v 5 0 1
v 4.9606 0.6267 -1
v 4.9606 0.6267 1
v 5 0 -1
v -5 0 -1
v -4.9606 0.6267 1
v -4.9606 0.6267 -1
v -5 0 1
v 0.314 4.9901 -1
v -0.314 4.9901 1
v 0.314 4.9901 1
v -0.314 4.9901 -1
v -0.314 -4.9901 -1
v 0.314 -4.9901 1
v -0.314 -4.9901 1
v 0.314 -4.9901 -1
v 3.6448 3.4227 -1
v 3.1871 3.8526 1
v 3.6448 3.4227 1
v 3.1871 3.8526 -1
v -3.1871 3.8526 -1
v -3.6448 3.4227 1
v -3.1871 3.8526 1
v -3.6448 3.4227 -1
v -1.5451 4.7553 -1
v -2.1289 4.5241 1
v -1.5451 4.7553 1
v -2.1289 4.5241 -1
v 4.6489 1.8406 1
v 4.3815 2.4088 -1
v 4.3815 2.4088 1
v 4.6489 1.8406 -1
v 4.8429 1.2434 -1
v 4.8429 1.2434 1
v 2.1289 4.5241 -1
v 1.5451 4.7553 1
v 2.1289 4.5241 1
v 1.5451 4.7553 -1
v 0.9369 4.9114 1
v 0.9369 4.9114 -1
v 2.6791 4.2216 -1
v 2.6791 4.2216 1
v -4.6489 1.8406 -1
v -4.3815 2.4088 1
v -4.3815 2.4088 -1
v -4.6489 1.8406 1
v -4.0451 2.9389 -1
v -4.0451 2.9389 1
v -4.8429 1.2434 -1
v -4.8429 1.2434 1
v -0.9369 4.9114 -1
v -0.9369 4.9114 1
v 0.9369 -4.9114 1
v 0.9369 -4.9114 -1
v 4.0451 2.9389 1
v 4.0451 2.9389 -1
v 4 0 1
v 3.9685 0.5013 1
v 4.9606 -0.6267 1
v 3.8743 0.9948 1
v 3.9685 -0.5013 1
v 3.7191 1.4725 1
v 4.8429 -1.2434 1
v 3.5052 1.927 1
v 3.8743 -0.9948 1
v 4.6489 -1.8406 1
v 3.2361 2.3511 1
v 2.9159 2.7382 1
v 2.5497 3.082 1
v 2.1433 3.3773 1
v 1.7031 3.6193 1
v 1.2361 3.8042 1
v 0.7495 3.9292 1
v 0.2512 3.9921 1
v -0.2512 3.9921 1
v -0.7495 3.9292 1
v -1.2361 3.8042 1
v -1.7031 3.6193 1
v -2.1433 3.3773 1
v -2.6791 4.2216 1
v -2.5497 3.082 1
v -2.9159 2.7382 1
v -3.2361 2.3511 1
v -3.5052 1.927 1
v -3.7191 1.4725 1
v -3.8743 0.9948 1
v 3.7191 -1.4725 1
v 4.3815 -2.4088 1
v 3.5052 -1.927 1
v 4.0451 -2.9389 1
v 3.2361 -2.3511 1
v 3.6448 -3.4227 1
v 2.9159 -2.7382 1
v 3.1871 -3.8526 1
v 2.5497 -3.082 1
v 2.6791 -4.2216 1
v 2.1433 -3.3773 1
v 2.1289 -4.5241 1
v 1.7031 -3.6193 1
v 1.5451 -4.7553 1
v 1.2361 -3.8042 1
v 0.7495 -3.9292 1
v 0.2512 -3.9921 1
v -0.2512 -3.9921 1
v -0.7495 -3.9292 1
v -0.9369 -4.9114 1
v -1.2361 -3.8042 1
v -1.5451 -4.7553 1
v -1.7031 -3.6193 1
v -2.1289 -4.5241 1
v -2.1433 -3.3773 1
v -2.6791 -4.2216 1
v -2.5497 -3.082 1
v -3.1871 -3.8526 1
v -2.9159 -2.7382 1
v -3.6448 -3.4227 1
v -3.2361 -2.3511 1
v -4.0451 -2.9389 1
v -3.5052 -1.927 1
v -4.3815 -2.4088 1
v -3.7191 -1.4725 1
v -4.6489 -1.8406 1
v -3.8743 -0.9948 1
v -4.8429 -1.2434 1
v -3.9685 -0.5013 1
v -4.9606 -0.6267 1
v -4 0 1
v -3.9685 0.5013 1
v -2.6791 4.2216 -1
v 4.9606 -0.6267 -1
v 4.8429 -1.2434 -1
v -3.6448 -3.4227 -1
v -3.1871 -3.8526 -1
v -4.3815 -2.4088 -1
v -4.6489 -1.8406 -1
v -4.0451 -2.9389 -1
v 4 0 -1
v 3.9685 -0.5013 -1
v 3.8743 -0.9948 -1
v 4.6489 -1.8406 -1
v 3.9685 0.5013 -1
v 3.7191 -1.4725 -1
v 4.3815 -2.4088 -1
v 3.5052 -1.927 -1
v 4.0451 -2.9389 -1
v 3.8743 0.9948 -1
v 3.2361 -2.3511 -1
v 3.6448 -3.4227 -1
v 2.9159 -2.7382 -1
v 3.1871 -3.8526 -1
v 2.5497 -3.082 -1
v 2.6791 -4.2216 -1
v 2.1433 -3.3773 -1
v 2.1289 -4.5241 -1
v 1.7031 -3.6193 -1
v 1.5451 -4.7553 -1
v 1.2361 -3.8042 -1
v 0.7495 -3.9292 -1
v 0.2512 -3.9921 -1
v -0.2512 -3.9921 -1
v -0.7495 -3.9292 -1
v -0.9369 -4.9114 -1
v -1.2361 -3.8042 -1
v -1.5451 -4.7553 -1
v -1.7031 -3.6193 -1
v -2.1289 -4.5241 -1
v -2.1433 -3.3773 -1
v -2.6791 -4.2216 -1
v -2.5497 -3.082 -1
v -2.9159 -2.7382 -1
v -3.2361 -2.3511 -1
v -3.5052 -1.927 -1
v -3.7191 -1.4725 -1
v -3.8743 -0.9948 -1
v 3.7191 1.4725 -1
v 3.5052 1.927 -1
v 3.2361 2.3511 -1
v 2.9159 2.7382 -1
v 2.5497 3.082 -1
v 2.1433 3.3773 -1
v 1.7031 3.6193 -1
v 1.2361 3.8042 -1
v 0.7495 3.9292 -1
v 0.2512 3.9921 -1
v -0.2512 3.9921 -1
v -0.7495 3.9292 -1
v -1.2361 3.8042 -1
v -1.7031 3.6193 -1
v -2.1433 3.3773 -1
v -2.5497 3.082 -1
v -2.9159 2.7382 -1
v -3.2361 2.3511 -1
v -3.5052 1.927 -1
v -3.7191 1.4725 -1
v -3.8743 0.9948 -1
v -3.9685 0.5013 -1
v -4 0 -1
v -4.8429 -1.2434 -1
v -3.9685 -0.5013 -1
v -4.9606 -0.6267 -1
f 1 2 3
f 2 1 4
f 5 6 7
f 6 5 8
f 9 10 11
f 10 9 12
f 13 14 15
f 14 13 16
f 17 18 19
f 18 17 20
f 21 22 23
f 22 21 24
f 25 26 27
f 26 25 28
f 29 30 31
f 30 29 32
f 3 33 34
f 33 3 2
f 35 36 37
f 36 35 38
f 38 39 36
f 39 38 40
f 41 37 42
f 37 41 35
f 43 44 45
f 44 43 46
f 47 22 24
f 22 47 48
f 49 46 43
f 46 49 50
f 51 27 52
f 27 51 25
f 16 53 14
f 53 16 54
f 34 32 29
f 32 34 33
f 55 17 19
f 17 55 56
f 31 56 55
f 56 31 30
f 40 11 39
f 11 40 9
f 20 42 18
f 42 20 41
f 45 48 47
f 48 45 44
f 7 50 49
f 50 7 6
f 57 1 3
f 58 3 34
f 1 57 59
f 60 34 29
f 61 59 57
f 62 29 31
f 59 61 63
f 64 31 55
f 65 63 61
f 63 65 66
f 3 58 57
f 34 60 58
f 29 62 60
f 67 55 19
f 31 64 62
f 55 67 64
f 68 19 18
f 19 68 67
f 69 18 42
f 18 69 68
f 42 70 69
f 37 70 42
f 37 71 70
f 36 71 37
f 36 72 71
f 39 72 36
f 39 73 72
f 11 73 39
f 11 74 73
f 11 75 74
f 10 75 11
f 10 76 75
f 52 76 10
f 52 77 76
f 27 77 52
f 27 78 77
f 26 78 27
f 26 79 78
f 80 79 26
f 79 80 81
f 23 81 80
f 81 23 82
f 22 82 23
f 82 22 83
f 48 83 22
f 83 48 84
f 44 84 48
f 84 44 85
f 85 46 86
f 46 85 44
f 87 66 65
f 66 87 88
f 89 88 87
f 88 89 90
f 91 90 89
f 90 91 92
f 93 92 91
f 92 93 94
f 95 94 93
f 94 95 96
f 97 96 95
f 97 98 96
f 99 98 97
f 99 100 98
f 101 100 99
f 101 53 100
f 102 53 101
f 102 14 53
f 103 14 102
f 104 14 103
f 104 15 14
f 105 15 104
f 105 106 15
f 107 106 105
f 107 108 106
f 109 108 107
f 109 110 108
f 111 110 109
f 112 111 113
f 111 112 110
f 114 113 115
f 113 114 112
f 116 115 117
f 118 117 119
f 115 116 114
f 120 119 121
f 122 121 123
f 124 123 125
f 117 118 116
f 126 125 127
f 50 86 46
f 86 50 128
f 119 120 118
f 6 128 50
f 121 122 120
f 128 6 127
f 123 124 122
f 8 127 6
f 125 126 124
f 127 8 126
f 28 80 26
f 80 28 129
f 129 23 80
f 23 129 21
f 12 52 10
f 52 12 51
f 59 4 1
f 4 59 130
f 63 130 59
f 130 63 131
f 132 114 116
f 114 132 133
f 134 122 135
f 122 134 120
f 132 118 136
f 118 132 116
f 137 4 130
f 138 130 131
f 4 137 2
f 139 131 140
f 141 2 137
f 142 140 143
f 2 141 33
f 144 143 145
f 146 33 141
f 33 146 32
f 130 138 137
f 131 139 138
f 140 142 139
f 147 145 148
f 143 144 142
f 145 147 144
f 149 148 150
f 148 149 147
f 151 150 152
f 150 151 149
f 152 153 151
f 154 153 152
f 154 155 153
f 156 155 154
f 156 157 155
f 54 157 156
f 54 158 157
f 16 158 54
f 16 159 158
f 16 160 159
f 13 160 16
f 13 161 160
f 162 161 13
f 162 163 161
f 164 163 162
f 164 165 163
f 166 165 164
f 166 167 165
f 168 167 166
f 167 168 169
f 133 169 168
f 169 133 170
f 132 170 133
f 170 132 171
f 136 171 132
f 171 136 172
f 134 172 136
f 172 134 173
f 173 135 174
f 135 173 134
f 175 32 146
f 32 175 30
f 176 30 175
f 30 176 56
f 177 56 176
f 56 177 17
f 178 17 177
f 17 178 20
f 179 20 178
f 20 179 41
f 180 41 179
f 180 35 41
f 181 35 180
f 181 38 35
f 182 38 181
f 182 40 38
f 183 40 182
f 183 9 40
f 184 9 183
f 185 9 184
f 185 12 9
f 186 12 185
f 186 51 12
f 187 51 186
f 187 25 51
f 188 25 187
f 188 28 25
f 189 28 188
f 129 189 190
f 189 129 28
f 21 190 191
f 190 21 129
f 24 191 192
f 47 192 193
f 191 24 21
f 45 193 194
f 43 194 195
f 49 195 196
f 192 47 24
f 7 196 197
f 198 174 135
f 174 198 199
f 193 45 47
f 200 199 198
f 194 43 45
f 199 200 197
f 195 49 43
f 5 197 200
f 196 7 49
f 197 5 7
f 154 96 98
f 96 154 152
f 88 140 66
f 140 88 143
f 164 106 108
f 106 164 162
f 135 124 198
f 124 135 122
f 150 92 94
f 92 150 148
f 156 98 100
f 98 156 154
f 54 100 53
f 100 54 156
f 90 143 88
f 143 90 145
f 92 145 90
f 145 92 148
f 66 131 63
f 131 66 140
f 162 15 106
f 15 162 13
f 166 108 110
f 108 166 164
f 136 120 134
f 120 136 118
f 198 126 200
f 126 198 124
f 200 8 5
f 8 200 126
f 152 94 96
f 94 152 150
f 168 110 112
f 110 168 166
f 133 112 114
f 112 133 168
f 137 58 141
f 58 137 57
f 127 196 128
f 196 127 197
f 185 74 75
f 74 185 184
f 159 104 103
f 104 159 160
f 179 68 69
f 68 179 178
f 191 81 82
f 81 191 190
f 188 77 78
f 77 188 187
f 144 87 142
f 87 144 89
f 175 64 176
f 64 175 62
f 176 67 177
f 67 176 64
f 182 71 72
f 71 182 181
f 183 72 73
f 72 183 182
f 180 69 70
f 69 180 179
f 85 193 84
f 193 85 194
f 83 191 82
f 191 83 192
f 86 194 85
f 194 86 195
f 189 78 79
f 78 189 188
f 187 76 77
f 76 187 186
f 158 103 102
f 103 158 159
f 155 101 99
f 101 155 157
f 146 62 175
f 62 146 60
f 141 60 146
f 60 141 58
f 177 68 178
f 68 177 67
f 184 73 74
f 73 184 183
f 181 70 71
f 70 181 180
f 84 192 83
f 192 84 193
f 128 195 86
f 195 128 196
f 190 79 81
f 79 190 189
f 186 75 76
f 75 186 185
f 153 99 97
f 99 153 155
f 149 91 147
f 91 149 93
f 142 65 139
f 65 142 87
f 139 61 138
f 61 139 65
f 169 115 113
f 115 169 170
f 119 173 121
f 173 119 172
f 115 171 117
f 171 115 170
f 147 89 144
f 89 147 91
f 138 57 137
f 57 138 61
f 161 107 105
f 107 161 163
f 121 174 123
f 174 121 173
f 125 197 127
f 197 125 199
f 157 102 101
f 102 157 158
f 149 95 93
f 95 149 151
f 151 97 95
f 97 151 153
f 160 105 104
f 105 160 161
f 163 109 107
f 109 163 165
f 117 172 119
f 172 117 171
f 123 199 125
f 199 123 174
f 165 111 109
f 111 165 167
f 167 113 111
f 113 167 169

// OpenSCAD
$fn = 50;


difference() {
	union() {
		translate(v = [0, 0, -1.0000000000]) {
			cylinder(h = 2, r = 5.0000000000);
		}
	}
	union() {
		translate(v = [0, 0, -100.0000000000]) {
			cylinder(h = 200, r = 4);
		}
	}
}
